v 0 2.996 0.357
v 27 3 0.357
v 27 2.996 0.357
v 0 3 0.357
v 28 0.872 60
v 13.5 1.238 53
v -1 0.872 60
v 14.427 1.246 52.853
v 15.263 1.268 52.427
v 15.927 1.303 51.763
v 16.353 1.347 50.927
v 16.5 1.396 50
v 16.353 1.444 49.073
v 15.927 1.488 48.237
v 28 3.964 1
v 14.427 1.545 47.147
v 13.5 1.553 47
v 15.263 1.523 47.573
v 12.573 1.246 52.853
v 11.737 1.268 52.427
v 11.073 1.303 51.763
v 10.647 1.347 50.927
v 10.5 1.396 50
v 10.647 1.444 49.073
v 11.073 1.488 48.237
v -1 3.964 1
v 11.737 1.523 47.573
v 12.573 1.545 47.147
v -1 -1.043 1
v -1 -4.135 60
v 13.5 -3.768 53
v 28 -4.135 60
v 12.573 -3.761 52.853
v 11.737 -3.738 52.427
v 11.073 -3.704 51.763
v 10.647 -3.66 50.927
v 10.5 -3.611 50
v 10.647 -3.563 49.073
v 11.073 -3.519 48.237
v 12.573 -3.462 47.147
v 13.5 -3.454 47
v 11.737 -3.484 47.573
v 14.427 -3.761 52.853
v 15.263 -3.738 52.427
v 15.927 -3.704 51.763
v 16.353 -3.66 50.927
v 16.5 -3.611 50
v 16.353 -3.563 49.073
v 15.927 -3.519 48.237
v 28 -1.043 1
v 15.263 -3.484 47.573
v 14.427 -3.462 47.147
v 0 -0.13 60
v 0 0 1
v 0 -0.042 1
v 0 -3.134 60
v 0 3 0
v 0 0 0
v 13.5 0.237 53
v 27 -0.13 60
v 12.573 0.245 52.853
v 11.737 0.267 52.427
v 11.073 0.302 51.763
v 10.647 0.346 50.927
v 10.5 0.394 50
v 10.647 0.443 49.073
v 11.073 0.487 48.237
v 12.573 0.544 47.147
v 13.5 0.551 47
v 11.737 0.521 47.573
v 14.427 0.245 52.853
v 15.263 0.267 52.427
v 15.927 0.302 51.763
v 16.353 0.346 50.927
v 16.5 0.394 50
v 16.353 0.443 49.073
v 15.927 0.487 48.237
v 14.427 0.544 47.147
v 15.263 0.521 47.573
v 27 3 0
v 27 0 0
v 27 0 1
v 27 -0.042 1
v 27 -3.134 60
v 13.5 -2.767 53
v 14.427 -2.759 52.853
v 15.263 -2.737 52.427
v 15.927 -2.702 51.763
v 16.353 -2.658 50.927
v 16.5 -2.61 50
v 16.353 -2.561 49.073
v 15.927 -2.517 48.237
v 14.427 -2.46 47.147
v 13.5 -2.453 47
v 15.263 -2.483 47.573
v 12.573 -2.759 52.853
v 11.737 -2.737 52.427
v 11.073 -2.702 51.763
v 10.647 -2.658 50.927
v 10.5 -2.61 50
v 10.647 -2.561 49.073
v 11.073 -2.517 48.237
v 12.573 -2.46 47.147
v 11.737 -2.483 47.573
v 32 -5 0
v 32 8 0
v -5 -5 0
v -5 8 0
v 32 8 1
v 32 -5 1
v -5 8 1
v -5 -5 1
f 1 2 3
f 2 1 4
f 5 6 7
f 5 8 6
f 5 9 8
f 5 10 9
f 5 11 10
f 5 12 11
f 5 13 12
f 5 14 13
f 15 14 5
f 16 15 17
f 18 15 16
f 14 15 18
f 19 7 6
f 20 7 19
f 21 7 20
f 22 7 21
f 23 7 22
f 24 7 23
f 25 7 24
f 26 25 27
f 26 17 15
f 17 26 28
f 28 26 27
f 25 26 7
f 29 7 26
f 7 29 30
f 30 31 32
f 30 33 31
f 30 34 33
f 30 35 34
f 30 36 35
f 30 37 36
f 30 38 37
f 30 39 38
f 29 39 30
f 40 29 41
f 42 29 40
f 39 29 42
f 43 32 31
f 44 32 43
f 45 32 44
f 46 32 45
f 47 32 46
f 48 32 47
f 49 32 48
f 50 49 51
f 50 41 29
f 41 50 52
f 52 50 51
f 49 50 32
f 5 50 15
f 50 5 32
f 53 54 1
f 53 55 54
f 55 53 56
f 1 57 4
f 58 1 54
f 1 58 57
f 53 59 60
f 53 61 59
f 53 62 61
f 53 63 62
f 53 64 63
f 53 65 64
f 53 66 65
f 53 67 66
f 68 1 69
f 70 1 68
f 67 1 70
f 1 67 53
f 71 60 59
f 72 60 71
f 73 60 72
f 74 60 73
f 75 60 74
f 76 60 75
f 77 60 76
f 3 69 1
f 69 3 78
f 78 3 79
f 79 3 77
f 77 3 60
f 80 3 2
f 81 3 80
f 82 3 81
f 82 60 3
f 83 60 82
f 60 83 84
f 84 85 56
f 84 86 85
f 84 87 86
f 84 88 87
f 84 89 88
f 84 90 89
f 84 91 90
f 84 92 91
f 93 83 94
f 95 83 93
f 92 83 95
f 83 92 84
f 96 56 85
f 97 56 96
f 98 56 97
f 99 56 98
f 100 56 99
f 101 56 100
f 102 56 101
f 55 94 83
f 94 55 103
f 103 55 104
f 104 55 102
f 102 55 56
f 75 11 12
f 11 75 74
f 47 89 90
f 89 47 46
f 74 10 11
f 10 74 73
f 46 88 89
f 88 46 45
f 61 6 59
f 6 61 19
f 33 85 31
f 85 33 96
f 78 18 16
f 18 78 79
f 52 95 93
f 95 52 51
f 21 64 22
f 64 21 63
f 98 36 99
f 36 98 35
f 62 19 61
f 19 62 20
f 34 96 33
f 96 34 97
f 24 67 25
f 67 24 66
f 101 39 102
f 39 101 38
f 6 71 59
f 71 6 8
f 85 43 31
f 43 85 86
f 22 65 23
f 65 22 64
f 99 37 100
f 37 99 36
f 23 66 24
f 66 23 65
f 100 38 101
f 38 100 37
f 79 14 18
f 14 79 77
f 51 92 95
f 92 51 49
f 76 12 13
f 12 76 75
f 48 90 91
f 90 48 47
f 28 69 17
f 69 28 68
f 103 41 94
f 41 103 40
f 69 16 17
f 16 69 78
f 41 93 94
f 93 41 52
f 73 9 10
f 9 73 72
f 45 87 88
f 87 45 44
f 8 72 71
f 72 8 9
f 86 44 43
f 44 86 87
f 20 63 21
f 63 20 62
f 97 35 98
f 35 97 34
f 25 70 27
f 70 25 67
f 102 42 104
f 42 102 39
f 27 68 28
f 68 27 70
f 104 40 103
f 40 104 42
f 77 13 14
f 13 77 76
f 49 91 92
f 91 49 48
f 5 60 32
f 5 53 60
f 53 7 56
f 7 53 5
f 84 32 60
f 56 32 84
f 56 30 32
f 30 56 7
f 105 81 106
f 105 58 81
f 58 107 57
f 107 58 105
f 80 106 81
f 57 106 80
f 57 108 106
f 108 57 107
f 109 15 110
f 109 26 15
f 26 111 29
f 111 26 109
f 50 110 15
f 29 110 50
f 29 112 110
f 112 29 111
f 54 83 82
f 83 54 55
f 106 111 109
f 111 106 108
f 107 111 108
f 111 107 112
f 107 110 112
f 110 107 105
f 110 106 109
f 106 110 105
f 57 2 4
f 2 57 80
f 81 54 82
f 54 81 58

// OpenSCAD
slot_size=[27,3];
thickness=[1,1];
v_Thickness = 1;
lip=[5,5];
height=60;
hole_position=50;


linear_extrude(v_Thickness) difference(){ 
    translate(-lip) square(slot_size+2*lip) ;
    square(slot_size);
};

module shoot() {
translate([0,0,0.2]) rotate([3,0,0])  linear_extrude(height) difference(){
    translate(-thickness) square(slot_size+2*thickness) ;
    square(slot_size);
};
}


difference(){
    shoot();
    translate([slot_size[0]/2,4,hole_position]) rotate([90,0,0]) cylinder(h=20,r=3,$fn=20);
    translate([-50,-50,height]) cube([100,100,10]);    
}
